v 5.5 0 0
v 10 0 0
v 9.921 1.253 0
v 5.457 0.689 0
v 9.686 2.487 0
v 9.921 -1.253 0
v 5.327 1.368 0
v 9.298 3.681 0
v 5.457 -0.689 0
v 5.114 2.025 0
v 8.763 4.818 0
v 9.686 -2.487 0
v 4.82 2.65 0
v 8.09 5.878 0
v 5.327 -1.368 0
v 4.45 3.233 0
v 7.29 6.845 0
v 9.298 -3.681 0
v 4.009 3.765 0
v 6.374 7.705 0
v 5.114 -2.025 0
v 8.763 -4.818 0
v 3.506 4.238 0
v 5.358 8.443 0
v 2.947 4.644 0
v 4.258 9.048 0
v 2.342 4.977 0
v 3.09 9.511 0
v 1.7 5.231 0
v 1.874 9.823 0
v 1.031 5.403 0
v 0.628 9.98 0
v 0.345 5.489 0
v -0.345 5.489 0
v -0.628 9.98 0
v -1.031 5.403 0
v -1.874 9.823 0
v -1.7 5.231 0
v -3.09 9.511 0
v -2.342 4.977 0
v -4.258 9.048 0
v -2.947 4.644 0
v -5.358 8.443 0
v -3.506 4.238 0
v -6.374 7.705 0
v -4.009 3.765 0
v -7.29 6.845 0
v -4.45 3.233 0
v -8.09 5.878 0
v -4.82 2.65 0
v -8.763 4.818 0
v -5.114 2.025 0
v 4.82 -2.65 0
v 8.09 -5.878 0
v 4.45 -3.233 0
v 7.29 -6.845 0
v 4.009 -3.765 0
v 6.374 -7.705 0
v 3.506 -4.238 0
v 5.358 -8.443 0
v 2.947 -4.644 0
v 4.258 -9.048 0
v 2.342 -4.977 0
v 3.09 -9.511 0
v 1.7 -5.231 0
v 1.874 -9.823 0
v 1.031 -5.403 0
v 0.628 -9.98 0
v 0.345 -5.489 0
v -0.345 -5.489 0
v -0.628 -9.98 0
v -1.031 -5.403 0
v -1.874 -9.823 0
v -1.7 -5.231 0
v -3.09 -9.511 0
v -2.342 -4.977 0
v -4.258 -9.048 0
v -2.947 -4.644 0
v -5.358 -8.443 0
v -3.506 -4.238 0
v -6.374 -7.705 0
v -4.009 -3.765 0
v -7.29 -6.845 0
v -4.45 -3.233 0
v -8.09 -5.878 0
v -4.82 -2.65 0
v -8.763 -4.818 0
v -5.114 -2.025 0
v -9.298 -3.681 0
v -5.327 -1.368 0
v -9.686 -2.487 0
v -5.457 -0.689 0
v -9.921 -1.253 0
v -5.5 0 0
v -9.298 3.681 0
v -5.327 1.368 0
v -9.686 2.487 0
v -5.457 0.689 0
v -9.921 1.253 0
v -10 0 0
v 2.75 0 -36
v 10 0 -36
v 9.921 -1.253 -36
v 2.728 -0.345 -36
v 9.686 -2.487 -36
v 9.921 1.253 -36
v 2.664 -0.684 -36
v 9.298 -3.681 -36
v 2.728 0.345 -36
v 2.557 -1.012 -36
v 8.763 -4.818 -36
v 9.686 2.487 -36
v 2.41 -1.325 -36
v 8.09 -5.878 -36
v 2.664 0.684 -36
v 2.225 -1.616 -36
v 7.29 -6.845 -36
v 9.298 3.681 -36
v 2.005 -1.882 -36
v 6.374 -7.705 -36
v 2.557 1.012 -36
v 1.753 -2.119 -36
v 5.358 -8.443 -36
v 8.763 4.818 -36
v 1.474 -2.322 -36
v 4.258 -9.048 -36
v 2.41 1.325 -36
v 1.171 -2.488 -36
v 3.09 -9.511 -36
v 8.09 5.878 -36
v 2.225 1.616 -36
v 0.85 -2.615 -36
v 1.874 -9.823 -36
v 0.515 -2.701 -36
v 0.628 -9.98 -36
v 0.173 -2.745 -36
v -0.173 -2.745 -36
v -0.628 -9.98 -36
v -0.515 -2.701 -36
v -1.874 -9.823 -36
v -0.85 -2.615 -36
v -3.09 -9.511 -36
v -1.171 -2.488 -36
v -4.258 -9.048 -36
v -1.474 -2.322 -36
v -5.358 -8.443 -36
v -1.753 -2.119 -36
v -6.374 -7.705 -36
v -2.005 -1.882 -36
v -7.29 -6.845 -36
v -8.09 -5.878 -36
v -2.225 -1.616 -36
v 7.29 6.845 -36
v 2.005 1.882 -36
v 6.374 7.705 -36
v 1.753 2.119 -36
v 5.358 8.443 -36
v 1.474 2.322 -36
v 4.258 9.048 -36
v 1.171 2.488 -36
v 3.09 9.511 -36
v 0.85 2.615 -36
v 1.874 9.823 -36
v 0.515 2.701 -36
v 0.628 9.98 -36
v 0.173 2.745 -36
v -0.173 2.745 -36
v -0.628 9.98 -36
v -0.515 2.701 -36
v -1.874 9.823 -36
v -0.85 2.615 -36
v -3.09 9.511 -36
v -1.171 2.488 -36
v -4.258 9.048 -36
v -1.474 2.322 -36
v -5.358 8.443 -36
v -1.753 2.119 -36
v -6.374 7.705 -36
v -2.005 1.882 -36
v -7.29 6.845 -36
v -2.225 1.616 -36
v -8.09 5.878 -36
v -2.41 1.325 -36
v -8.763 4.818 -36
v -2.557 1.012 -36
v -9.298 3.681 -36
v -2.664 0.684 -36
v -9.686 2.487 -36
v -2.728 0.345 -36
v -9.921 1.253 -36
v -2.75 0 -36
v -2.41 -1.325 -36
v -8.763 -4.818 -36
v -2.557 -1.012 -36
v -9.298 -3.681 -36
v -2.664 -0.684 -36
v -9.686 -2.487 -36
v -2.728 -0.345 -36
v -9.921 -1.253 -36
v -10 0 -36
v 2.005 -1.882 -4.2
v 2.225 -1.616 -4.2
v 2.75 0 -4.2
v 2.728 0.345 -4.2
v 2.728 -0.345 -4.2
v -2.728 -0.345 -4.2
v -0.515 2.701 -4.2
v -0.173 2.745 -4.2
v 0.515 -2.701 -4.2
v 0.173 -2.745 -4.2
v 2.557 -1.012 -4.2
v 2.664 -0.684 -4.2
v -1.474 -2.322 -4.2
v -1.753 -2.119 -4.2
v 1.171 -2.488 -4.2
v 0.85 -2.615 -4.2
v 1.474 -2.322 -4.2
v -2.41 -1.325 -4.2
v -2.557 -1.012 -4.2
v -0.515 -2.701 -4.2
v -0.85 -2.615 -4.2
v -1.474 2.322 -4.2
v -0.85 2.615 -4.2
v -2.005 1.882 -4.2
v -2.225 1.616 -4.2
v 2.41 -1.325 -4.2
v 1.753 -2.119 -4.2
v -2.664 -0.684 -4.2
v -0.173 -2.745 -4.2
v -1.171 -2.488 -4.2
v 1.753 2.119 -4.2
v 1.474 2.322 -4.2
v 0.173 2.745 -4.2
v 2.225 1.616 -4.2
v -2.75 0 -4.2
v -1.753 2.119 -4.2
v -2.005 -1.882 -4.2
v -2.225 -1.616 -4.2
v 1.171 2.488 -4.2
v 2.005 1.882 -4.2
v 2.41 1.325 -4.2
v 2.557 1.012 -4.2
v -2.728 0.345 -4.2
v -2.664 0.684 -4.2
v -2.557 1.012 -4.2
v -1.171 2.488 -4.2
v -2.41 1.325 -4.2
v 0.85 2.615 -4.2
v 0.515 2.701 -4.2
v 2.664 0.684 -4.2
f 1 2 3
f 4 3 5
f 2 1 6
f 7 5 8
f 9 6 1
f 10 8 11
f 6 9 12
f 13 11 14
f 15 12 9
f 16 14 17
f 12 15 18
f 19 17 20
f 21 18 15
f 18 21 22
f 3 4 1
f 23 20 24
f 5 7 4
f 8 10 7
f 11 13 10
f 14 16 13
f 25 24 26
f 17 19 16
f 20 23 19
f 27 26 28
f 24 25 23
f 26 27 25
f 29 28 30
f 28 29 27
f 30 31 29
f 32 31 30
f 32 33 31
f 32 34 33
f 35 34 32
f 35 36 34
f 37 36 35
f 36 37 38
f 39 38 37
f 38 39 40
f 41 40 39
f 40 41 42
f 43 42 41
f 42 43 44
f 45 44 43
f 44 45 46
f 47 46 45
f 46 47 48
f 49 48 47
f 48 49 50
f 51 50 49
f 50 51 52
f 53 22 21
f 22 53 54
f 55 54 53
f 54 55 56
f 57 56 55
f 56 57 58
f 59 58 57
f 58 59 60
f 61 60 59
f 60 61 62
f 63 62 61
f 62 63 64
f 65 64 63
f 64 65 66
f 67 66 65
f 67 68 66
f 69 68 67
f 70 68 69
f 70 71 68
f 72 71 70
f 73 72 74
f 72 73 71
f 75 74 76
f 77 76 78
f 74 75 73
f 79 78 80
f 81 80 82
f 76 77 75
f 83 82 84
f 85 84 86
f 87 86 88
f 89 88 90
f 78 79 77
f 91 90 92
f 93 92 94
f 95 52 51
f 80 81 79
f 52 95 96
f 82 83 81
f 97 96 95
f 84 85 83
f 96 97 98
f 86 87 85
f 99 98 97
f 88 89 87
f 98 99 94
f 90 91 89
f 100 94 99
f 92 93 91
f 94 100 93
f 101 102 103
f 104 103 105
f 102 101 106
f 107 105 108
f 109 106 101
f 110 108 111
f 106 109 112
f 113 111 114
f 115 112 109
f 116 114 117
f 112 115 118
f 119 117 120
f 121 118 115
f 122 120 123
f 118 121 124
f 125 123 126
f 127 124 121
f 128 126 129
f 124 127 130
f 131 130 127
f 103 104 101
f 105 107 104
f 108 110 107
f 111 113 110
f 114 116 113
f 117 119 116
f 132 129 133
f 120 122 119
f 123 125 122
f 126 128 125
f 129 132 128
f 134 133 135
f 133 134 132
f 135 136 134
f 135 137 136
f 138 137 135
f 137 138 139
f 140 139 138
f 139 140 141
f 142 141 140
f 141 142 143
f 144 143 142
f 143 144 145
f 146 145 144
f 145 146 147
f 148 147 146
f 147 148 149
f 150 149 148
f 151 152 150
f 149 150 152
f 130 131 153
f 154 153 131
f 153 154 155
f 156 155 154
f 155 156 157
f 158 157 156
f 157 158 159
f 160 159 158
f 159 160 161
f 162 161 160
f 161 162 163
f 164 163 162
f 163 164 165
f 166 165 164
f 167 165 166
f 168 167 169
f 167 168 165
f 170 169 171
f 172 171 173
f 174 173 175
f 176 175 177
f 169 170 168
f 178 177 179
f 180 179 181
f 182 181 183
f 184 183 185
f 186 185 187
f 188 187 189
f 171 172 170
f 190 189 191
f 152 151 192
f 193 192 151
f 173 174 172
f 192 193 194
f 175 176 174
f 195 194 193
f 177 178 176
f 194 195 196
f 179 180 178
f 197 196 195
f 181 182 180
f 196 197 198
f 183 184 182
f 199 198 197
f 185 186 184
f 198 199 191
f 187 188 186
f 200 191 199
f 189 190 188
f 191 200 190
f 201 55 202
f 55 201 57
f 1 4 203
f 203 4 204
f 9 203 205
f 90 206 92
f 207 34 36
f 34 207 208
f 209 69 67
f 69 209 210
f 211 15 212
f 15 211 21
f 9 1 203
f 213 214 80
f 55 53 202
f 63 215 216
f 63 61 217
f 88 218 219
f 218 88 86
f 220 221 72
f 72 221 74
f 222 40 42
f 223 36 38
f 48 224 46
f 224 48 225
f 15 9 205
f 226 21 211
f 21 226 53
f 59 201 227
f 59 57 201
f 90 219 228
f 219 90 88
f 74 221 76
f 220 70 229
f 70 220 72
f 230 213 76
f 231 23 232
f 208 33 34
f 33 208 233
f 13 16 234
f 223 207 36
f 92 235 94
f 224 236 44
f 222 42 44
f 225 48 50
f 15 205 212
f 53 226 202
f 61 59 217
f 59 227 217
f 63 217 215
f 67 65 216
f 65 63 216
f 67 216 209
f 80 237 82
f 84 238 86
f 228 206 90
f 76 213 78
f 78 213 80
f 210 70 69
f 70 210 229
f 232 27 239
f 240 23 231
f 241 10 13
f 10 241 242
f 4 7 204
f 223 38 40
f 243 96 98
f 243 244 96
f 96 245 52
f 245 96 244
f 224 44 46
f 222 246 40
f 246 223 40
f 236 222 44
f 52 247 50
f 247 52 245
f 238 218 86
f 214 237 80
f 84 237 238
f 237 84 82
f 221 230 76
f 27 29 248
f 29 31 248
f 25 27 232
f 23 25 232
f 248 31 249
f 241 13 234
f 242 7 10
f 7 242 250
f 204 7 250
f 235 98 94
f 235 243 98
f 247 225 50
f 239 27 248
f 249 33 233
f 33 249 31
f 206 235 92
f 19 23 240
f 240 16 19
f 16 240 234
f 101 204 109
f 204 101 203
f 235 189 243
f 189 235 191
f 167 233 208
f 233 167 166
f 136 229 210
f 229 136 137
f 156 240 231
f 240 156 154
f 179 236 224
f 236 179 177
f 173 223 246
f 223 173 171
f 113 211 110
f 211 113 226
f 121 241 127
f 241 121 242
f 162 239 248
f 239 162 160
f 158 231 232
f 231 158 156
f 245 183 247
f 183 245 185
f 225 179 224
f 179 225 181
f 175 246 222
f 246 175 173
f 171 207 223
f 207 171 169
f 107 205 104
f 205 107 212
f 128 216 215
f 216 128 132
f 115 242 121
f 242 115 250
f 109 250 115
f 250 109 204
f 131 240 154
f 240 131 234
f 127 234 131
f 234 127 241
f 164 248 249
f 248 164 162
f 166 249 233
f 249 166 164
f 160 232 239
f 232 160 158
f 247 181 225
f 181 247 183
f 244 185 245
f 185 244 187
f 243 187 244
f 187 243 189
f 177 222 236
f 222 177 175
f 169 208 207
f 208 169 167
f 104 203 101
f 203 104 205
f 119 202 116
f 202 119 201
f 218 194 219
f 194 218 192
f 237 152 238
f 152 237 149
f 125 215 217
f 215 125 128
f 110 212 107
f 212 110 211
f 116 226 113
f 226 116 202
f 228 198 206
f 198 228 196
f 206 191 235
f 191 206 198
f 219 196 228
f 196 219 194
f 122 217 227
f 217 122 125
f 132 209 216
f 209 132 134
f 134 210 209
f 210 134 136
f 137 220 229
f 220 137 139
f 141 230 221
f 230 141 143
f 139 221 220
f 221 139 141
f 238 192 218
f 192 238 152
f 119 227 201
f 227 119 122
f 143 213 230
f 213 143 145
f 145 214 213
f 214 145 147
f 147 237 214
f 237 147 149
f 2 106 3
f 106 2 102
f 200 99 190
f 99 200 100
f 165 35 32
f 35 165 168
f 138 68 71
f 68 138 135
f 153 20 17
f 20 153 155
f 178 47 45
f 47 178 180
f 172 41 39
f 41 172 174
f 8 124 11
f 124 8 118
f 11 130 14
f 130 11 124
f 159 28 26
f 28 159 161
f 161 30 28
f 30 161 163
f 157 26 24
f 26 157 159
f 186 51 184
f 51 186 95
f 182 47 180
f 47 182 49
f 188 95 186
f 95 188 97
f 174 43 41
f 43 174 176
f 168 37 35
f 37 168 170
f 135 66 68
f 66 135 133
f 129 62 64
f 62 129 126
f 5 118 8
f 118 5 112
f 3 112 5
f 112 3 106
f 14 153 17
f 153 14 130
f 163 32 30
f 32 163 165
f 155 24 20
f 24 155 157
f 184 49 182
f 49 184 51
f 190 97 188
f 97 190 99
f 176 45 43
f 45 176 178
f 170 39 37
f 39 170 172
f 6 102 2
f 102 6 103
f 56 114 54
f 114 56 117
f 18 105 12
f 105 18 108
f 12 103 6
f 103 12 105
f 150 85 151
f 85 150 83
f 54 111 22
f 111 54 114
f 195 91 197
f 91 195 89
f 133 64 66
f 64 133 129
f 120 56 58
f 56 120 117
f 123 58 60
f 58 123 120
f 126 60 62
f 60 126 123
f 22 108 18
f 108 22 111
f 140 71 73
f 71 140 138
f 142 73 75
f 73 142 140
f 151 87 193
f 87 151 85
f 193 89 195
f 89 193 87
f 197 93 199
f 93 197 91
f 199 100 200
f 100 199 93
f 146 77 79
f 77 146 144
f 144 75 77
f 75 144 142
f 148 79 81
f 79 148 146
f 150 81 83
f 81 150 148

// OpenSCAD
$fn = 50;


difference() {
	union() {
		translate(v = [0, 0, -36.0000000000]) {
			cylinder(h = 36, r = 10.0000000000);
		}
		cylinder(h = 0, r = 13.0000000000);
	}
	union() {
		translate(v = [0, 0, 0]) {
			rotate(a = [0, 0, 0]) {
				difference() {
					union() {
						#translate(v = [0, 0, -36.0000000000]) {
							cylinder(h = 36, r = 2.2500000000);
						}
						#translate(v = [0, 0, -4.2000000000]) {
							cylinder(h = 4.2000000000, r = 10.0000000000, r1 = 2.7500000000, r2 = 5.5000000000);
						}
						#translate(v = [0, 0, -36.0000000000]) {
							cylinder(h = 36, r = 2.7500000000);
						}
						#translate(v = [0, 0, -36.0000000000]) {
							cylinder(h = 36, r = 2.2500000000);
						}
					}
					union();
				}
			}
		}
	}
}
